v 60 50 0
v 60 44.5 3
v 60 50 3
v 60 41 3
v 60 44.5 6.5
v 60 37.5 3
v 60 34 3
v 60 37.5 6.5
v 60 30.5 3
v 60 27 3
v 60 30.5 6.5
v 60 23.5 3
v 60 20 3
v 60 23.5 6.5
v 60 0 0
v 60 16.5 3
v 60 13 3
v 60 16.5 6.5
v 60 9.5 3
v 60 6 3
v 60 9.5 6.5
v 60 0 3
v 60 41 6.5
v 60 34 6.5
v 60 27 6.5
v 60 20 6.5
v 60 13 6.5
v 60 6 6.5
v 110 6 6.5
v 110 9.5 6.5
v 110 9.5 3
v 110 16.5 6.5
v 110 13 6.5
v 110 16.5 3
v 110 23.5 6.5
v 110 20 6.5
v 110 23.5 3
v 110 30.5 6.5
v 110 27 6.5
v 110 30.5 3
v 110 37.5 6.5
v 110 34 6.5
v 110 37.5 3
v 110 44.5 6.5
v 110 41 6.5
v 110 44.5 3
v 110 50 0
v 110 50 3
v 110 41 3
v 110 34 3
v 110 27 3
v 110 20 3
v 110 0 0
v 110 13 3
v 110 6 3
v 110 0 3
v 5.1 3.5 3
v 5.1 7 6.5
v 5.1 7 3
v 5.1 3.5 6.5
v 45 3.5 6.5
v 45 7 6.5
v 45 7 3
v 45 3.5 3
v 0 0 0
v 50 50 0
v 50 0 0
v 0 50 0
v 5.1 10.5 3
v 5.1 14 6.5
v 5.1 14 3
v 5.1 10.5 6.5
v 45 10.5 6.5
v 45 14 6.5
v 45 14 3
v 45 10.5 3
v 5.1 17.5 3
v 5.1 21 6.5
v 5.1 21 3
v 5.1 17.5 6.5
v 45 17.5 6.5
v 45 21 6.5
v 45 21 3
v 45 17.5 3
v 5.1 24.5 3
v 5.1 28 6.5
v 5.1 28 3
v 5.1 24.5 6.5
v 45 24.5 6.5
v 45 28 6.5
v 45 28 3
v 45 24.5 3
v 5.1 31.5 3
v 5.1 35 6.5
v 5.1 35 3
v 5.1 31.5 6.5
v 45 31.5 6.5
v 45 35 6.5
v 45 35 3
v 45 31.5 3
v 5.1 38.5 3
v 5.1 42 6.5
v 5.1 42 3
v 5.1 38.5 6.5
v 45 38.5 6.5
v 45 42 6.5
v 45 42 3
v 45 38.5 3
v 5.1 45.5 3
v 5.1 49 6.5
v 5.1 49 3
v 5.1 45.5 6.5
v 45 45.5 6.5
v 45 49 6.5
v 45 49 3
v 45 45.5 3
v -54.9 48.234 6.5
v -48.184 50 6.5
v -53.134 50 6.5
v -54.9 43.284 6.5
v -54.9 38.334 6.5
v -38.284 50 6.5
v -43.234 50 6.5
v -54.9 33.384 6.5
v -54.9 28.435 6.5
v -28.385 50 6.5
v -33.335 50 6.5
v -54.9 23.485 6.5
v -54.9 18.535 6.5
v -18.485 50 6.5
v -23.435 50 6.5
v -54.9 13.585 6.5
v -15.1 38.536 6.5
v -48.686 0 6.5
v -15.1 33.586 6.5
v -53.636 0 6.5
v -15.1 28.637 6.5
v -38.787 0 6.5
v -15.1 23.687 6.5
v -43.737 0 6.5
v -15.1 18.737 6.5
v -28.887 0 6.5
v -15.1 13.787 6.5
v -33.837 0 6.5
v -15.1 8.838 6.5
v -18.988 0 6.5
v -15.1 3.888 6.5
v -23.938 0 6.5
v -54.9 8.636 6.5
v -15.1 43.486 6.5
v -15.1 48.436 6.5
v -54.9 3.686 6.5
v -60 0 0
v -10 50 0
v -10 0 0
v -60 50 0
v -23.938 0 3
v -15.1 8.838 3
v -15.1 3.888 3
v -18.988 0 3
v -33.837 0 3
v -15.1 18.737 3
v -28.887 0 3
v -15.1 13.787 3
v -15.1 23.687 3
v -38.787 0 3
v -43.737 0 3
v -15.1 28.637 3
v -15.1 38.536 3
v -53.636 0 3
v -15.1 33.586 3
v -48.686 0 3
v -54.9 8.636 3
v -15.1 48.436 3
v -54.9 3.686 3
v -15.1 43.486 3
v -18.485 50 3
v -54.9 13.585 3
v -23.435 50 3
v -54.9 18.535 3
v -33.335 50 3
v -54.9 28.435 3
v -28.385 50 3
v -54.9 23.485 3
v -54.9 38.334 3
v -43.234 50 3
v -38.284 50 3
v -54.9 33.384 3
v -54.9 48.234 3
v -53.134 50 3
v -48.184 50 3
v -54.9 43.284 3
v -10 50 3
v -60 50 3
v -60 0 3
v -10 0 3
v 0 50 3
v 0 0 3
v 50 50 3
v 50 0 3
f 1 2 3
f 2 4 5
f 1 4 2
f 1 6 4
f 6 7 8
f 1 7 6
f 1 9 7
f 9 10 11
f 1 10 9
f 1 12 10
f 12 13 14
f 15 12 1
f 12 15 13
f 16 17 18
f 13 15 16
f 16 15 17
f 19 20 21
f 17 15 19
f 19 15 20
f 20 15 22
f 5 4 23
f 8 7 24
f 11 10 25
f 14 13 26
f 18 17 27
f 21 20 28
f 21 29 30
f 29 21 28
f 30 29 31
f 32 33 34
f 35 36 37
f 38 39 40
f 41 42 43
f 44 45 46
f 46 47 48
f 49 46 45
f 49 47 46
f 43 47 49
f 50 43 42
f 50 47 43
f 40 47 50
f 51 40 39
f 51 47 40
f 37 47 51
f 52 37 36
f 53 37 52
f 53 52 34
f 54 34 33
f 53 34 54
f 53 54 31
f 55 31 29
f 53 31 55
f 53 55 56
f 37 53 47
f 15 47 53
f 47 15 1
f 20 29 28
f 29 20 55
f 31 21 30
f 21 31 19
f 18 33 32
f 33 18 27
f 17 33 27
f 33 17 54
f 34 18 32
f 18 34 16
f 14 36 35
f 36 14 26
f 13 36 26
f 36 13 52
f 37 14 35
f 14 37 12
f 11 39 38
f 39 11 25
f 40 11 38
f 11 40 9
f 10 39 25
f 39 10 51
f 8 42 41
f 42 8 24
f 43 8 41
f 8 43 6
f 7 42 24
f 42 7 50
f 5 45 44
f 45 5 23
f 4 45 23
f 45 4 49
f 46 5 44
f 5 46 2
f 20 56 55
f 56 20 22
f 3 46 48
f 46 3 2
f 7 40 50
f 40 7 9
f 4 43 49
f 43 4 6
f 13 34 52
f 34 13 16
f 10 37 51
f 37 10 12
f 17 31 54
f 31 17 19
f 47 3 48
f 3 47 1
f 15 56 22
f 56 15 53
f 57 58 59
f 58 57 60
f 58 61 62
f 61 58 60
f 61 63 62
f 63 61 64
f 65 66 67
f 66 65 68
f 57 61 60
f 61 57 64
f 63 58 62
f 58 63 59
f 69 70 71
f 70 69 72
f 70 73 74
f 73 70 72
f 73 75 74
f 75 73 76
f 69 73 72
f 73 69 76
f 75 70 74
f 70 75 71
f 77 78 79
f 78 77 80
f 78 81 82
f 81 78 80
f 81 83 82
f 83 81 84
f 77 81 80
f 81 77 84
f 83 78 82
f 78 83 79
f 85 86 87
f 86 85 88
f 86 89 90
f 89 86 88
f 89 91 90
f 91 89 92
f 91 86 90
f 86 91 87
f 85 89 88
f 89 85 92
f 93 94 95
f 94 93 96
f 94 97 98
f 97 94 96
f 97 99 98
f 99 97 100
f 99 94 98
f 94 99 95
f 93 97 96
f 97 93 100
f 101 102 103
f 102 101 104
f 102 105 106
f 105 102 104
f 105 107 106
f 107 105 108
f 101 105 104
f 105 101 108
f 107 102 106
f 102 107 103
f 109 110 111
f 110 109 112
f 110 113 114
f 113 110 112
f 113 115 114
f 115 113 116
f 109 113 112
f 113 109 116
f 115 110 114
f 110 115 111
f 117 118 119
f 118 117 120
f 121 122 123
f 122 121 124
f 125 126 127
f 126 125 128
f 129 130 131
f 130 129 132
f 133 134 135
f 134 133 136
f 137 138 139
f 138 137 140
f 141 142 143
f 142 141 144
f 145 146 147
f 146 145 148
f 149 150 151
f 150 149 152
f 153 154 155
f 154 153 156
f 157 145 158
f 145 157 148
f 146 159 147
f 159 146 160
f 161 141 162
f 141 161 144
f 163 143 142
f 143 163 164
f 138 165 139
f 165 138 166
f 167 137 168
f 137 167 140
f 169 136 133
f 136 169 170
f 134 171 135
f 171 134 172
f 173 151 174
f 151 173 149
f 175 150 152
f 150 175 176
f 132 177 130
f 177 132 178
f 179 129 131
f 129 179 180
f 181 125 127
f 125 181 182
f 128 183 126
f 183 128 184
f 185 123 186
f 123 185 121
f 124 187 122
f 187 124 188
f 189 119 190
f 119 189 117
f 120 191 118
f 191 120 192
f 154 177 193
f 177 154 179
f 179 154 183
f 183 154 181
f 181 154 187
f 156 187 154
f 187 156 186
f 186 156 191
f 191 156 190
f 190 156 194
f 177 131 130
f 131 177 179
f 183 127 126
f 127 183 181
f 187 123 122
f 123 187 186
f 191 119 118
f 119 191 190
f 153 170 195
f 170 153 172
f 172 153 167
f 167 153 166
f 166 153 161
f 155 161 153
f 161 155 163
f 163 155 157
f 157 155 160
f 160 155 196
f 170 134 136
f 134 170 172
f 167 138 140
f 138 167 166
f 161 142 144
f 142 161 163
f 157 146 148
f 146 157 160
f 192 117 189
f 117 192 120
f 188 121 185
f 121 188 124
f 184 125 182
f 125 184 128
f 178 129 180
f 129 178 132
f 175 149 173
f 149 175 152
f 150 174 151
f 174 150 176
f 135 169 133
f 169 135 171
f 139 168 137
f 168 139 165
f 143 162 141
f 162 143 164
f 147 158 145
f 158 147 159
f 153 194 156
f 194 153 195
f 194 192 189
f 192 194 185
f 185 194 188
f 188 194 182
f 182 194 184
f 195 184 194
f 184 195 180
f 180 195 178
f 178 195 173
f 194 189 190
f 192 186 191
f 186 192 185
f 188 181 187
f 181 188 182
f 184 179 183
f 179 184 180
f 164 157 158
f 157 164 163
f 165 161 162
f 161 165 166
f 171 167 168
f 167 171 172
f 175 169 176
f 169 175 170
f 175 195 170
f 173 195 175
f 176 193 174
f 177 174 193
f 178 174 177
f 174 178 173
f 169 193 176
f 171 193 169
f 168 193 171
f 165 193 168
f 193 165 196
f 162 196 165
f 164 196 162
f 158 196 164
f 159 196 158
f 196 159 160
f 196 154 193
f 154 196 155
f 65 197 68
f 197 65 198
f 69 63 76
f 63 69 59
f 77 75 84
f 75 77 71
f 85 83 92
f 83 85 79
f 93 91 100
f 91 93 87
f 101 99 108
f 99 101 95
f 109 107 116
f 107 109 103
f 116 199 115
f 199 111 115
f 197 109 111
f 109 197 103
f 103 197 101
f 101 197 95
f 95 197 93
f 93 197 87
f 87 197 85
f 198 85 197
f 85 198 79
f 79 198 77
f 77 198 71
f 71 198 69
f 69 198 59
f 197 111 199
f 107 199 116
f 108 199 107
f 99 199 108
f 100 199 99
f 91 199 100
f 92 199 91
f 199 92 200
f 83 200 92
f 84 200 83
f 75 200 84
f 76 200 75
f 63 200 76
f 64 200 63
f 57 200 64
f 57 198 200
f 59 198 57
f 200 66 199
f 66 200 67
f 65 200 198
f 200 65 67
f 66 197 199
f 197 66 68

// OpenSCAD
//textures for the mice maze

plateX = 50;
plateY = 50;
plateZ = 3;

tol = 0.1;


grateX = plateX;
grateY = 3.5;
grateZ = 3.5;


module texture1(){
    for (i = [6:2*grateY: plateX-6]){
        translate([0, i, 0]){
            cube([grateX,grateY,plateZ+grateZ]);
        }//end translate
    }//end for 
    
    
    
    }
    
module texture2(){
    for (i = [grateY:2*grateY: plateY]){
        translate([5+tol, i, 0]){
            
            cube([grateX-10-tol,grateY,plateZ+grateZ]);
        }//end translate

    }//end for 
    
    
    
    }  
module texture3(){

difference(){

    intersection(){
    cube([plateX,plateY,plateZ+grateZ]);
        translate([0,-0,0]){
    rotate([0,0,45]){
        for (i = [-plateX:2*grateY: plateX]){
        translate([0, i, 0]){
            cube([grateX+50,grateY,plateZ+grateZ]);
        }//end translate
    }//end for 

    }//end rotate
}//end translate
}//end intersection

    translate([-tol,-tol,-tol]){
    cube([5+2*tol,plateY+2*tol,plateZ+grateZ+2*tol]);
    }//end translate
    translate([plateX-5-tol,-tol,-tol]){
    cube([5+2*tol,plateY+2*tol,plateZ+grateZ+2*tol]);
    }//end translate
}
}

translate([60,0,0]){
cube([plateX,plateY,plateZ]);    
texture1();
}


cube([plateX,plateY,plateZ]);    
    texture2();

translate([-60,0,0]){
cube([plateX,plateY,plateZ]);    
    texture3();
}
